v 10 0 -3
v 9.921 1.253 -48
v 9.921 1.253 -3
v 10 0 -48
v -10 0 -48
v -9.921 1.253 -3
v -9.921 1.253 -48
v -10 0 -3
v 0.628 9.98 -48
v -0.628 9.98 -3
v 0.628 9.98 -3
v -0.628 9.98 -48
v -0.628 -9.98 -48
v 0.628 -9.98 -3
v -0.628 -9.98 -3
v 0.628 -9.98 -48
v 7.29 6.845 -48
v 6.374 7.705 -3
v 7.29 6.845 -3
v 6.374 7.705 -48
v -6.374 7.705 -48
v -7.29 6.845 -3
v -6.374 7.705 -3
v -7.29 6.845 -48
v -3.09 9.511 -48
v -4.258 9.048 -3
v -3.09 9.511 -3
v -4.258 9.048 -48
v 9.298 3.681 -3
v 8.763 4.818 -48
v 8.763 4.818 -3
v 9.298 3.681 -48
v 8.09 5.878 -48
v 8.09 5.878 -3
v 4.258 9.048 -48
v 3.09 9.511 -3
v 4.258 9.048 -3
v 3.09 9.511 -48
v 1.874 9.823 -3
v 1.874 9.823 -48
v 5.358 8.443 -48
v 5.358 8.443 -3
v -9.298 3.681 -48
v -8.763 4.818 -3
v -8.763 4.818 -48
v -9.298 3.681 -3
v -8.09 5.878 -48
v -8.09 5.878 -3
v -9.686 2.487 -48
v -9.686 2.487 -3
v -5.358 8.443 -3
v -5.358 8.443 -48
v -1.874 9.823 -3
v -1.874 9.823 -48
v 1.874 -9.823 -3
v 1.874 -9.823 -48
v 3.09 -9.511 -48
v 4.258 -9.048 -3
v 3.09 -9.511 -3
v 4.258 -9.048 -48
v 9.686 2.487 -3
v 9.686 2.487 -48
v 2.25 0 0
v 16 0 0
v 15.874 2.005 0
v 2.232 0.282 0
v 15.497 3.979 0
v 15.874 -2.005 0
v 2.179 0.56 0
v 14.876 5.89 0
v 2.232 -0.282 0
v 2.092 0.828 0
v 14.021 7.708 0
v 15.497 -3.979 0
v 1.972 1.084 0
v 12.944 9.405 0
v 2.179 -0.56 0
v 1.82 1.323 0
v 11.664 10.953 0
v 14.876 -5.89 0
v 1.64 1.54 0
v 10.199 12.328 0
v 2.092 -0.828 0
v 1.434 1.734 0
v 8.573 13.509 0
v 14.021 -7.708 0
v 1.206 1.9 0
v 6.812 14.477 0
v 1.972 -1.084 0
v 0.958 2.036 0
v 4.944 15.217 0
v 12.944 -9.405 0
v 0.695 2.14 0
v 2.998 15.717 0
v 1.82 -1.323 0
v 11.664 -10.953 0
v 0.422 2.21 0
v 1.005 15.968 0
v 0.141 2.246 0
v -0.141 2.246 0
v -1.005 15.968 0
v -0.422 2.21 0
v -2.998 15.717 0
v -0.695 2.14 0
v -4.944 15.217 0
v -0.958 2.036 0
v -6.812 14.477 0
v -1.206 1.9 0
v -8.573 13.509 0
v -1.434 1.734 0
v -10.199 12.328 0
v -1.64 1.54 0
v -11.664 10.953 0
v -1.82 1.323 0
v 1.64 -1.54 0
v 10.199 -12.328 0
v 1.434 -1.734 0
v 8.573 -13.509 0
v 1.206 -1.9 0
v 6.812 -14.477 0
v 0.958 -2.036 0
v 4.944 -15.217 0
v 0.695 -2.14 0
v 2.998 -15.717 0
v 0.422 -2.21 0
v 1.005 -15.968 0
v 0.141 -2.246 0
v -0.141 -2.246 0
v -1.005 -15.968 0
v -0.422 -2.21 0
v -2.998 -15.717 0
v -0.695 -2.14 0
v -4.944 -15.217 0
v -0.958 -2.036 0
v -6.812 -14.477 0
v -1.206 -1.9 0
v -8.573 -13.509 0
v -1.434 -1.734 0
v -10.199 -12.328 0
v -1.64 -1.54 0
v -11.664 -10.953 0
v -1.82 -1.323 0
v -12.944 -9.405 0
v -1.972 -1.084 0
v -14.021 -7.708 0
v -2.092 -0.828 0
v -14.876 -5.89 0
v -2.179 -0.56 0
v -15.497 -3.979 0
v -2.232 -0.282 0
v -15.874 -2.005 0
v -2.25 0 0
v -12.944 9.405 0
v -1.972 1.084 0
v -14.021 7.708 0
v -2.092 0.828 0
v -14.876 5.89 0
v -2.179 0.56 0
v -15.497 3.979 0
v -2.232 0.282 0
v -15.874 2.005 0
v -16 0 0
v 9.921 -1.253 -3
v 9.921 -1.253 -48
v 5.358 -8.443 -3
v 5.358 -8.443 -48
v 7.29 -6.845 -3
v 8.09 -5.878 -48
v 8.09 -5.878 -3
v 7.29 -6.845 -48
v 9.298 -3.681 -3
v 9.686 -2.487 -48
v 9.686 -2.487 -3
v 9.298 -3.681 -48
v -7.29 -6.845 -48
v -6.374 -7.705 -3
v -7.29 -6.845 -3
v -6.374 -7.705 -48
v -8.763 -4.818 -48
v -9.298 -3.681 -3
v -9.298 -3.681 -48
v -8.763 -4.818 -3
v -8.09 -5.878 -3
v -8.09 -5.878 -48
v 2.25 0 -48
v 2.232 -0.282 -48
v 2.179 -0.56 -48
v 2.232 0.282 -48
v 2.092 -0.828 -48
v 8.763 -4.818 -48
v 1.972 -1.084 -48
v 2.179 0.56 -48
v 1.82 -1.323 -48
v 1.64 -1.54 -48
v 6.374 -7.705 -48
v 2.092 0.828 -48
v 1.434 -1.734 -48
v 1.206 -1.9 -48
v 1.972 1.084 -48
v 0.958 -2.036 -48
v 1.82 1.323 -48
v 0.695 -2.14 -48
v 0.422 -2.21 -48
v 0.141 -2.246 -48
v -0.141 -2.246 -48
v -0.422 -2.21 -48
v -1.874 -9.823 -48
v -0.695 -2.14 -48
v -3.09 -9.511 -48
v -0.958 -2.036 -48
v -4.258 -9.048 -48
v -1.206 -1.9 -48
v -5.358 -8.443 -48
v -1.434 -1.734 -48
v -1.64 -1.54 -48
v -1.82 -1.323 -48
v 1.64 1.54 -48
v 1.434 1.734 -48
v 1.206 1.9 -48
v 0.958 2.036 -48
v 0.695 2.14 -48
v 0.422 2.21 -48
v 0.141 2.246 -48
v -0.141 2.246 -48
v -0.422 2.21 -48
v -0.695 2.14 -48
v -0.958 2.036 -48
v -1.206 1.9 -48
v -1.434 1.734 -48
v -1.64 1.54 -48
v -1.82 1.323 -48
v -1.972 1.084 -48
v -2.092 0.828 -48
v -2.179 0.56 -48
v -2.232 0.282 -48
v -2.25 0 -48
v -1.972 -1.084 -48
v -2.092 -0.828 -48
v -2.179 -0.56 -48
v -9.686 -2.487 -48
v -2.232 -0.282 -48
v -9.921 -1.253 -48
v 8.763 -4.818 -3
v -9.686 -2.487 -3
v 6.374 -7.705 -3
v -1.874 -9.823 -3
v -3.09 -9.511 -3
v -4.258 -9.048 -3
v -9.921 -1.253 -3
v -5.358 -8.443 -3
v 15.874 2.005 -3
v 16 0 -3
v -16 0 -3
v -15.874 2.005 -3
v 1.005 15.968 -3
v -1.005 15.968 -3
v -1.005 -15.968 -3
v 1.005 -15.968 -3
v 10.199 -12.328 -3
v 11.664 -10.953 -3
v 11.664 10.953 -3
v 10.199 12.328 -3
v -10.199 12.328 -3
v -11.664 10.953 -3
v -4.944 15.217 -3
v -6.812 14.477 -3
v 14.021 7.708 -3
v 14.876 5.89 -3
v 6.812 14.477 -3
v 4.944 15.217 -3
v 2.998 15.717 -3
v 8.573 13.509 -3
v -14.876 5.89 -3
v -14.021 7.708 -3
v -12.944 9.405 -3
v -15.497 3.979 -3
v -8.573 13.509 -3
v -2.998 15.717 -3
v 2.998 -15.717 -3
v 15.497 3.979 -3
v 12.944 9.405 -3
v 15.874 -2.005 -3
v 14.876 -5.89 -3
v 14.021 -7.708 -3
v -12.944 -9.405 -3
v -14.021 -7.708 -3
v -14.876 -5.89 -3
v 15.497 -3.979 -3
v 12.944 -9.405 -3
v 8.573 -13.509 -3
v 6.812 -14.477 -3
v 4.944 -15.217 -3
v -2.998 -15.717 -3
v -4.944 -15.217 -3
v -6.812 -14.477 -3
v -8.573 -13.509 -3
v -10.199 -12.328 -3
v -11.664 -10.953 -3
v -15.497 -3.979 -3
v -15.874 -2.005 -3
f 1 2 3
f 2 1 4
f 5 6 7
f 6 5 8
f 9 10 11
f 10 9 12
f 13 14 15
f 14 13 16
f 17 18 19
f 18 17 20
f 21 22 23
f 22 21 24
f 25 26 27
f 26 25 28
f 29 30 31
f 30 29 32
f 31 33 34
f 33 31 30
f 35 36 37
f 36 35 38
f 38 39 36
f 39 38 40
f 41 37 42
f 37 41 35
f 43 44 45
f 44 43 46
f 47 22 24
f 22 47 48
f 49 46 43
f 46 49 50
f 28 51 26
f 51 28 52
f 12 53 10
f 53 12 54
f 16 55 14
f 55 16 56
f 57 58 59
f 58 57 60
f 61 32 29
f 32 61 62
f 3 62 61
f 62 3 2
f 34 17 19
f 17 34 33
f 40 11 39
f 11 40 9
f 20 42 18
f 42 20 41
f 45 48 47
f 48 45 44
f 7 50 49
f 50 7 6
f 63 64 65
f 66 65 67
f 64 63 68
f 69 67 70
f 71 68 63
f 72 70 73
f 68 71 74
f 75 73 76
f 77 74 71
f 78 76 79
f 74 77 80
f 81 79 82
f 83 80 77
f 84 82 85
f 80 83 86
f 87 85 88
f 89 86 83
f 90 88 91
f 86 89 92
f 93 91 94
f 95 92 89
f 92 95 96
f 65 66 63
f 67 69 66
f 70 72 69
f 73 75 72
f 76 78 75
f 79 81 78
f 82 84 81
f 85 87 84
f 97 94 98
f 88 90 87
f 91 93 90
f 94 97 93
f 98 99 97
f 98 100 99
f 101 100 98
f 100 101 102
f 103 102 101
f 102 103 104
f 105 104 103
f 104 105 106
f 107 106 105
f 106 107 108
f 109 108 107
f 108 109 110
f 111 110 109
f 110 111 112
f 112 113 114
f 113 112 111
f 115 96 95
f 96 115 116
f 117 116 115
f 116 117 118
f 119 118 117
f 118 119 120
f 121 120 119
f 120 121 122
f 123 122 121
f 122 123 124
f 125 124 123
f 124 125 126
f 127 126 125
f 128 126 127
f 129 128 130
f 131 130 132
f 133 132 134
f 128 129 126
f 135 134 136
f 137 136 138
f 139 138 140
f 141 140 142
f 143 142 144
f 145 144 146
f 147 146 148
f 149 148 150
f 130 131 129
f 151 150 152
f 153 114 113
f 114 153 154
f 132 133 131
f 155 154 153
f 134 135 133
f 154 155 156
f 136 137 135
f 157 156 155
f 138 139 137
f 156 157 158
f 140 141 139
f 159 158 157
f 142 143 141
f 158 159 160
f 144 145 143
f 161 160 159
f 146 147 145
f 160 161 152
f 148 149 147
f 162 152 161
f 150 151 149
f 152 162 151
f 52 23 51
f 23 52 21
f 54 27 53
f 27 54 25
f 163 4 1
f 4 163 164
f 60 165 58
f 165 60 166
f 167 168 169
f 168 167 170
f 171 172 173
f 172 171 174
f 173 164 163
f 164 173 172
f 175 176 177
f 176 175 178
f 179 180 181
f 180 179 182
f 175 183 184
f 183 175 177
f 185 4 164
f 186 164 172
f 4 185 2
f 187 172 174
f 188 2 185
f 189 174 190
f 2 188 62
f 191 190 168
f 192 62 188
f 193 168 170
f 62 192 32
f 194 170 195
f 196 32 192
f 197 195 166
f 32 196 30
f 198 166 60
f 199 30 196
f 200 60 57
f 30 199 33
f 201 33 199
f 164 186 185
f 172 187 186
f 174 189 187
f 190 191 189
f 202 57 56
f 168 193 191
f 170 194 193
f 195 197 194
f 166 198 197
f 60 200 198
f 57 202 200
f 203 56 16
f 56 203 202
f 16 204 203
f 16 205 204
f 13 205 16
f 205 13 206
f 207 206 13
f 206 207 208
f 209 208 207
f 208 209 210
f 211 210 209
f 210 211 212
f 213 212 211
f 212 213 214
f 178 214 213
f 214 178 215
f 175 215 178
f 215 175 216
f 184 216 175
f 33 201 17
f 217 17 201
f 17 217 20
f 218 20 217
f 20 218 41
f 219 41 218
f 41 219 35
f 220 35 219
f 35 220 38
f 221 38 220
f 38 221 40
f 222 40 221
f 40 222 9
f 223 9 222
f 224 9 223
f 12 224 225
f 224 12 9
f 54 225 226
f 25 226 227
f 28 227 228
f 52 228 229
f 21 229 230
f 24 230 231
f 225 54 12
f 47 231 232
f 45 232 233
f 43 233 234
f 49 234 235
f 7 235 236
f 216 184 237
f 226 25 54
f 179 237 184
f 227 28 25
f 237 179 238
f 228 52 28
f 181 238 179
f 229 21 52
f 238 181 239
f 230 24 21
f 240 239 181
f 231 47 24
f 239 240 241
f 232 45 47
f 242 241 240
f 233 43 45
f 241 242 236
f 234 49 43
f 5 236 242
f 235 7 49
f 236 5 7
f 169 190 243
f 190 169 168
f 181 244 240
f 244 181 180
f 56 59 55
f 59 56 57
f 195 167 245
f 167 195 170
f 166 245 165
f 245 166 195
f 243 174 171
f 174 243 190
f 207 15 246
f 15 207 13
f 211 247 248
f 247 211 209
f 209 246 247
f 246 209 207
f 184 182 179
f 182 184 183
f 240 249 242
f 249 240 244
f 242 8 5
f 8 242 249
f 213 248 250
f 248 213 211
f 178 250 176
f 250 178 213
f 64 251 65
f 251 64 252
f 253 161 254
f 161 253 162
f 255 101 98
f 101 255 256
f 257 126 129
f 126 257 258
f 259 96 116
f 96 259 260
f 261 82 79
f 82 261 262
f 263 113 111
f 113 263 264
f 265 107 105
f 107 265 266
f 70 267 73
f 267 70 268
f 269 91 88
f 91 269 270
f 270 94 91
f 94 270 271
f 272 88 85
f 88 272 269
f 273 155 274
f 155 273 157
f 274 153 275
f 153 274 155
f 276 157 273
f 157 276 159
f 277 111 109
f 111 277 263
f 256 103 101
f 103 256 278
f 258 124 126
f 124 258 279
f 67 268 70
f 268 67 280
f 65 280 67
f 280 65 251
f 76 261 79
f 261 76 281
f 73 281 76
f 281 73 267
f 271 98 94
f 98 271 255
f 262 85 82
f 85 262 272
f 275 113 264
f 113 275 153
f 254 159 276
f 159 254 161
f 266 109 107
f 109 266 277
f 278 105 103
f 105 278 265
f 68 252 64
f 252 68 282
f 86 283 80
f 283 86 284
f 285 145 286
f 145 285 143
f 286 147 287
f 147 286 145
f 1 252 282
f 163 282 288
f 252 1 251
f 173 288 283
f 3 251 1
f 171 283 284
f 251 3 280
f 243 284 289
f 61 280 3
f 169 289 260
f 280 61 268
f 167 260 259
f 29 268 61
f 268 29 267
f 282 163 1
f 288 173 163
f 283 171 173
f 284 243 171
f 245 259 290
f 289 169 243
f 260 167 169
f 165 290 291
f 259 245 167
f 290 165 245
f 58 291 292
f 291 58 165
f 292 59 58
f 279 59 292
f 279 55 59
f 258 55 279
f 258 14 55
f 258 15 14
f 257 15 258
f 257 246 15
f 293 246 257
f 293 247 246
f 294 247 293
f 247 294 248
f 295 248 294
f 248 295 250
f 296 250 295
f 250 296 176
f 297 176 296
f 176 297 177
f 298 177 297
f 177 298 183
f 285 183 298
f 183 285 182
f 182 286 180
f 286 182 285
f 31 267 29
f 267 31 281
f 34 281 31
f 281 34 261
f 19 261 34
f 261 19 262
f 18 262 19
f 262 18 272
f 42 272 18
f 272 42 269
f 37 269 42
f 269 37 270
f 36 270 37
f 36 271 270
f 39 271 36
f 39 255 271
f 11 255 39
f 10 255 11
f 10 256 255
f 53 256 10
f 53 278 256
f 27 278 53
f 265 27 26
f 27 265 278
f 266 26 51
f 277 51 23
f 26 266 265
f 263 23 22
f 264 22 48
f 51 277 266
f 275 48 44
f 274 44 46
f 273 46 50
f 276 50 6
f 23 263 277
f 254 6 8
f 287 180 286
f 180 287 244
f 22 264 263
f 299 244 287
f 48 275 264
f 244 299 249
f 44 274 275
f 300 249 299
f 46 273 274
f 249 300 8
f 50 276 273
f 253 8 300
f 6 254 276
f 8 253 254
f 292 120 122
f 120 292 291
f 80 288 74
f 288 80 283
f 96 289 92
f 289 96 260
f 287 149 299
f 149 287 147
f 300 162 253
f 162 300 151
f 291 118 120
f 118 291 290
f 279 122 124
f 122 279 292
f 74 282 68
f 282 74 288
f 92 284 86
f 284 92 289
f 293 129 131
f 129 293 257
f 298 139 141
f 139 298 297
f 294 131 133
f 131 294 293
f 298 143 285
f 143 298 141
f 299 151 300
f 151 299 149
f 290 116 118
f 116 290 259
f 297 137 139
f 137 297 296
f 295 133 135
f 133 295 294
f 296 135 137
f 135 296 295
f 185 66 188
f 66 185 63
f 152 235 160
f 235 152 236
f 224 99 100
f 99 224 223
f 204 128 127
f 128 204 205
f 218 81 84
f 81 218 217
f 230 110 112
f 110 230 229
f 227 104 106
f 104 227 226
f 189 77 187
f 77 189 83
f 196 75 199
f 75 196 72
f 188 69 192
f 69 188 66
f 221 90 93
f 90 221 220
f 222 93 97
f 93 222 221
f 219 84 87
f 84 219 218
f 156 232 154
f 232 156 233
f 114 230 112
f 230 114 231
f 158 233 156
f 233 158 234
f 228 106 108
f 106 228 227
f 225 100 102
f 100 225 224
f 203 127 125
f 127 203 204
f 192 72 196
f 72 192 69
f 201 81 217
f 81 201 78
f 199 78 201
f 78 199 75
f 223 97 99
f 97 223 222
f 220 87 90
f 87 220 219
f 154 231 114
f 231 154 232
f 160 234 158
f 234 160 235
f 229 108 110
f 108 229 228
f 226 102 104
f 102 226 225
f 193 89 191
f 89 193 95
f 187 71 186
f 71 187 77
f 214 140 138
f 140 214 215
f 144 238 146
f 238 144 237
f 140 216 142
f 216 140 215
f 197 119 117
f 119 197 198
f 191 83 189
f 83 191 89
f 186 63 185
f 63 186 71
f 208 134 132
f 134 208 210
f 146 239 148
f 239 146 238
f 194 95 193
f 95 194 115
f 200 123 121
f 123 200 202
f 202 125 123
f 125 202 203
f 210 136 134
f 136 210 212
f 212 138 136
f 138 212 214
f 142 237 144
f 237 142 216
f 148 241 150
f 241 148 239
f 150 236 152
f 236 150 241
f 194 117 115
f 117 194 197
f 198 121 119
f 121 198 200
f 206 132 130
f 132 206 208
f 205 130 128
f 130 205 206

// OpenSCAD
$fn = 50;


difference() {
	union() {
		translate(v = [0, 0, -48.0000000000]) {
			cylinder(h = 48, r = 10.0000000000);
		}
		translate(v = [0, 0, -3.0000000000]) {
			cylinder(h = 3, r = 16.0000000000);
		}
	}
	union() {
		#translate(v = [0, 0, -48]) {
			cylinder(h = 48, r = 2.2500000000);
		}
	}
}
